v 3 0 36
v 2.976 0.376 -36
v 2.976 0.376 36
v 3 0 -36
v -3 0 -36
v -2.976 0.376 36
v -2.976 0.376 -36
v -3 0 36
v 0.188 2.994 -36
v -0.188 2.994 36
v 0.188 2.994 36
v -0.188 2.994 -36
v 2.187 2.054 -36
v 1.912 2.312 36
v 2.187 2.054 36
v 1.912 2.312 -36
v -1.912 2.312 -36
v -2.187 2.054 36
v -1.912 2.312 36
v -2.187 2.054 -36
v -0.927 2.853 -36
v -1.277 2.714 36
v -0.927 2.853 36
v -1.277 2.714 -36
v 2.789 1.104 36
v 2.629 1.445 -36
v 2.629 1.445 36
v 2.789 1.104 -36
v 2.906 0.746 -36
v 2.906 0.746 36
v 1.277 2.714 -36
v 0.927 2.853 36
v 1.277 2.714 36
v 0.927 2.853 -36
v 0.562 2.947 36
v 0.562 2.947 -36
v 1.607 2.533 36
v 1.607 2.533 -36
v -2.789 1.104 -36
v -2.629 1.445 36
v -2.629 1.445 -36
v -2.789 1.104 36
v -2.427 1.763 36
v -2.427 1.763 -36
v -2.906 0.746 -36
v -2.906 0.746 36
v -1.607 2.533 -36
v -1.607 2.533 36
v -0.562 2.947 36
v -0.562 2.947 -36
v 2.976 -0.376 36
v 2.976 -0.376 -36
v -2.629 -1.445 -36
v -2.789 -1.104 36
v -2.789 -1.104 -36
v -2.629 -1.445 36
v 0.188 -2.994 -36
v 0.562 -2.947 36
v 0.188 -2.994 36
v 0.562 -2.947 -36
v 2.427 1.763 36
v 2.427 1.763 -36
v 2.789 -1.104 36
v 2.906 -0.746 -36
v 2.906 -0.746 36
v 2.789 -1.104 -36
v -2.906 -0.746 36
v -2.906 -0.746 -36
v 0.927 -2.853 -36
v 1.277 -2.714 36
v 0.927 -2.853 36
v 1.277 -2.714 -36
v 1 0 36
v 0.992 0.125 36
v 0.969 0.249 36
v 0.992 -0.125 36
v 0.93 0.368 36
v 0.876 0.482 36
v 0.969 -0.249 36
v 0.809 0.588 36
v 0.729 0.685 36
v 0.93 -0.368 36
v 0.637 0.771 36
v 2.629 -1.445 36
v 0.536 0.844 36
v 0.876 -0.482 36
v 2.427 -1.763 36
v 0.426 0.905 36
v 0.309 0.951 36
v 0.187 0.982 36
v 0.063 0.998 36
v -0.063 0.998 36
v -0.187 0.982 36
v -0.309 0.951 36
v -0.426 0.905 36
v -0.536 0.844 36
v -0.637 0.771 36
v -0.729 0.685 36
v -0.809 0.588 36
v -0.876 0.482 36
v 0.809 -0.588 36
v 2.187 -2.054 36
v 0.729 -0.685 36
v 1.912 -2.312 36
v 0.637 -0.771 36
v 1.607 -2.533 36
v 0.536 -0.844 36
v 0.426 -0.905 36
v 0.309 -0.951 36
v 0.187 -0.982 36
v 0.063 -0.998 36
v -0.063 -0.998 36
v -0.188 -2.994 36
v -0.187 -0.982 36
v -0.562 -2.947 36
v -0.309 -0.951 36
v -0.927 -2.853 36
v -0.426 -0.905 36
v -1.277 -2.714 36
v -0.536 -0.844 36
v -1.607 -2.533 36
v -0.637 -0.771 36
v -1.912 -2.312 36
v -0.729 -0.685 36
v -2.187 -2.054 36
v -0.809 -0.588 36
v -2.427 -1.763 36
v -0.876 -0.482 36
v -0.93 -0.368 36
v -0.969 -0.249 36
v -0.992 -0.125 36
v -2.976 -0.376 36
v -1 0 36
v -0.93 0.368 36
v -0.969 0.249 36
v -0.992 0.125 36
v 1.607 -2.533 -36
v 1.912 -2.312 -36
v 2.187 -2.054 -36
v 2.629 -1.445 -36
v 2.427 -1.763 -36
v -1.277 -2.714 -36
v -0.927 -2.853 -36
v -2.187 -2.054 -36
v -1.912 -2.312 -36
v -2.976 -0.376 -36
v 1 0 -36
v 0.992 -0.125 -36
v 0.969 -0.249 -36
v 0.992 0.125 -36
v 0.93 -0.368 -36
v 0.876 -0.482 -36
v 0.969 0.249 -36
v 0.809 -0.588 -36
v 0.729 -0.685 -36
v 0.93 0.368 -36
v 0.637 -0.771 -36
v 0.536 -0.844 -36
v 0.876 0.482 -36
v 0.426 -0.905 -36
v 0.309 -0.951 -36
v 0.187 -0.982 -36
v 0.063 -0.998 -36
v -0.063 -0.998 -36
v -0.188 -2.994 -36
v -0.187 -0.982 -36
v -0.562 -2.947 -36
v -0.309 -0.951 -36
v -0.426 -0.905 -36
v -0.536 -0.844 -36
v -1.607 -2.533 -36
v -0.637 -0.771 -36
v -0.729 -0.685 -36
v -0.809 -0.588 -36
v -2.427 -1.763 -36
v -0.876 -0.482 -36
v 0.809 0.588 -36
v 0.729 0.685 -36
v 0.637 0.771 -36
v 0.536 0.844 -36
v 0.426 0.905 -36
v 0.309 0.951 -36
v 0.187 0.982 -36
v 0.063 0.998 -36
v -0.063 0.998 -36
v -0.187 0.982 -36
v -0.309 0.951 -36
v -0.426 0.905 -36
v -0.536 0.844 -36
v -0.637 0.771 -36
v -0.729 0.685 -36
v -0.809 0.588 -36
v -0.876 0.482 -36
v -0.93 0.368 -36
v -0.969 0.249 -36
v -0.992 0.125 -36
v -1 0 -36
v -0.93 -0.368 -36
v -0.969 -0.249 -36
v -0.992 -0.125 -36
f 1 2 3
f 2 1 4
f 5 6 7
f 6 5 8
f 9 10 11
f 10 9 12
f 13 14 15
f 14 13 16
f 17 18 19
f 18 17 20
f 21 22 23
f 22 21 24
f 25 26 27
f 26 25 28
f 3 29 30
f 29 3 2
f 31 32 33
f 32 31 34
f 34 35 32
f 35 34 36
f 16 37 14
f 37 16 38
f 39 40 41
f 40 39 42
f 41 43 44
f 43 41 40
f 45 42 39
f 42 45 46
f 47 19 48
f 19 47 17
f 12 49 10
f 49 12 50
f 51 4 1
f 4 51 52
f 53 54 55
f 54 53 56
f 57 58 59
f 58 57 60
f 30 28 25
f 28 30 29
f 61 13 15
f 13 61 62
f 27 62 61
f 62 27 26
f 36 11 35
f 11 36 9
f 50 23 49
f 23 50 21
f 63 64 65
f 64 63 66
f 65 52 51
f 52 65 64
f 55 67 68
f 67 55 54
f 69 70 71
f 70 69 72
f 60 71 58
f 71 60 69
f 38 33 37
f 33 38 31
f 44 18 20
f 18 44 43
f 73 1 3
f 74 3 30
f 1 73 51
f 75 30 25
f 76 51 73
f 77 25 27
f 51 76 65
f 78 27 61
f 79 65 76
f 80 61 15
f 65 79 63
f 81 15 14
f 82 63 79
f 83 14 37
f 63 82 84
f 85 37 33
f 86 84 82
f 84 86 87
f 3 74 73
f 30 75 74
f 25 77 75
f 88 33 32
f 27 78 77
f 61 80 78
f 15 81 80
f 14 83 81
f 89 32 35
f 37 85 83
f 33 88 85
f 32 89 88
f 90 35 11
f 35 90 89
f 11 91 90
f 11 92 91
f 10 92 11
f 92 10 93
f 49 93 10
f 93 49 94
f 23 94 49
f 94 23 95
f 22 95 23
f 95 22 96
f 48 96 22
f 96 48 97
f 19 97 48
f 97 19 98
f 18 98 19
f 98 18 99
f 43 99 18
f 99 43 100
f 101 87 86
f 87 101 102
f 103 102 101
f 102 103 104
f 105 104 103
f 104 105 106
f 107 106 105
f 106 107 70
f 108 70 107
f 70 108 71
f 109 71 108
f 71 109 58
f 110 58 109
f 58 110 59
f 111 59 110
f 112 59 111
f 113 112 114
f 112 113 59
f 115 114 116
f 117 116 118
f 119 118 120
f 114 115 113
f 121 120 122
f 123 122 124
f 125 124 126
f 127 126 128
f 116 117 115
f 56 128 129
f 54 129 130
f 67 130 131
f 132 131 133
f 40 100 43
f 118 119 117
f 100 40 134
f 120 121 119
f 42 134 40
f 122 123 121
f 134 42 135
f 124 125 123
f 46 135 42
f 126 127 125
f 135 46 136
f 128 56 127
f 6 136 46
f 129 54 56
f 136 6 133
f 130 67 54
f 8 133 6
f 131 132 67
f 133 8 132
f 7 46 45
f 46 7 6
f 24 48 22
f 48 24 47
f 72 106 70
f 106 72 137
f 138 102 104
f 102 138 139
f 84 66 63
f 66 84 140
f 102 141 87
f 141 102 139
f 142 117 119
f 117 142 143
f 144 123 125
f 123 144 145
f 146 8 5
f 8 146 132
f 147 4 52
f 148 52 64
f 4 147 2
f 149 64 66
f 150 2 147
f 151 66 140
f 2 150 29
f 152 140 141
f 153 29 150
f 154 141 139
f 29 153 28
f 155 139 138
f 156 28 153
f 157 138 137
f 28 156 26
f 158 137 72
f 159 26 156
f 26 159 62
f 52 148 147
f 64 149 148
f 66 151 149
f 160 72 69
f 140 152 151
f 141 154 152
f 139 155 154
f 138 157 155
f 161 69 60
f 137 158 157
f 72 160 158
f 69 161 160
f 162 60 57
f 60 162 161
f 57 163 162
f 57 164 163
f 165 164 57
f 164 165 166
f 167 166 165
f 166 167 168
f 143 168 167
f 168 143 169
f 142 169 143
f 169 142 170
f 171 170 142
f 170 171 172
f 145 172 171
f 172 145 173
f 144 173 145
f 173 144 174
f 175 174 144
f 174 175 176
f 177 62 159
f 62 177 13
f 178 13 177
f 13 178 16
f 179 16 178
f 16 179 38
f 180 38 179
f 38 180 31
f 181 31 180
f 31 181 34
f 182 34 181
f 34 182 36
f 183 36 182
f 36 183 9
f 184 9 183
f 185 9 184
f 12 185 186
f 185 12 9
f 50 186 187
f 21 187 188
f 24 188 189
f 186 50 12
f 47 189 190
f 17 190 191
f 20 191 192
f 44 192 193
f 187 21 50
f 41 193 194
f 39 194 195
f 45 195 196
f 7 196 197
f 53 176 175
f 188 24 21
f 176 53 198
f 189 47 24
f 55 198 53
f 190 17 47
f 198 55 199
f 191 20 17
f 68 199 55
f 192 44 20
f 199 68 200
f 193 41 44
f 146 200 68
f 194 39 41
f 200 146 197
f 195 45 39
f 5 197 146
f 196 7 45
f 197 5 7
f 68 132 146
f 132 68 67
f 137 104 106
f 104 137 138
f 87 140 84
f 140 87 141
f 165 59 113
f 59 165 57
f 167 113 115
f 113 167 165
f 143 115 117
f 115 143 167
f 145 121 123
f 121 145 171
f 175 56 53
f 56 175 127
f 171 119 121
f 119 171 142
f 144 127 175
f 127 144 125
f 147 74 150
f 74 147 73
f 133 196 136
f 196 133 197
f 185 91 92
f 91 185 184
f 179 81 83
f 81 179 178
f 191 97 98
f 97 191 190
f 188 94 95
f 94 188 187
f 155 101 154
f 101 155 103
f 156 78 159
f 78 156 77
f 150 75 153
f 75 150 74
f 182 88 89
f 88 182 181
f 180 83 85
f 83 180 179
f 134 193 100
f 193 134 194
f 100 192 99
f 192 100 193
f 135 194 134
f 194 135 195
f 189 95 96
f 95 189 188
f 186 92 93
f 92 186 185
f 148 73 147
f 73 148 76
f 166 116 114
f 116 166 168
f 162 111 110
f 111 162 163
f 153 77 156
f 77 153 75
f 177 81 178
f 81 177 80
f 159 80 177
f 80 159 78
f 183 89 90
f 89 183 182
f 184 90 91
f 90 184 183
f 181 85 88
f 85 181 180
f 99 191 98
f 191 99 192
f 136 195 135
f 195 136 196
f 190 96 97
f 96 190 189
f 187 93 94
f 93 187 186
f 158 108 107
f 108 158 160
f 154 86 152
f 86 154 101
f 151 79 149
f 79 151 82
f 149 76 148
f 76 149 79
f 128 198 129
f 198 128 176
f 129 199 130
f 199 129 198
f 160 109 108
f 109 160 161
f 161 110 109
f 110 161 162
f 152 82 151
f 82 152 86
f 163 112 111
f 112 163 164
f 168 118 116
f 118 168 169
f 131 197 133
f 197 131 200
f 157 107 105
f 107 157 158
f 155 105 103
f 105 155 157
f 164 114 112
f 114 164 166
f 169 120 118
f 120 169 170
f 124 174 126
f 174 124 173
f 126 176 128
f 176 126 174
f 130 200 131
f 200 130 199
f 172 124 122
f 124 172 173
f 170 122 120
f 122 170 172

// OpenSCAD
$fn = 50;


difference() {
	union() {
		translate(v = [0, 0, -36.0000000000]) {
			cylinder(h = 72, r = 3.0000000000);
		}
	}
	union() {
		translate(v = [0, 0, -100.0000000000]) {
			cylinder(h = 200, r = 1.0000000000);
		}
	}
}
